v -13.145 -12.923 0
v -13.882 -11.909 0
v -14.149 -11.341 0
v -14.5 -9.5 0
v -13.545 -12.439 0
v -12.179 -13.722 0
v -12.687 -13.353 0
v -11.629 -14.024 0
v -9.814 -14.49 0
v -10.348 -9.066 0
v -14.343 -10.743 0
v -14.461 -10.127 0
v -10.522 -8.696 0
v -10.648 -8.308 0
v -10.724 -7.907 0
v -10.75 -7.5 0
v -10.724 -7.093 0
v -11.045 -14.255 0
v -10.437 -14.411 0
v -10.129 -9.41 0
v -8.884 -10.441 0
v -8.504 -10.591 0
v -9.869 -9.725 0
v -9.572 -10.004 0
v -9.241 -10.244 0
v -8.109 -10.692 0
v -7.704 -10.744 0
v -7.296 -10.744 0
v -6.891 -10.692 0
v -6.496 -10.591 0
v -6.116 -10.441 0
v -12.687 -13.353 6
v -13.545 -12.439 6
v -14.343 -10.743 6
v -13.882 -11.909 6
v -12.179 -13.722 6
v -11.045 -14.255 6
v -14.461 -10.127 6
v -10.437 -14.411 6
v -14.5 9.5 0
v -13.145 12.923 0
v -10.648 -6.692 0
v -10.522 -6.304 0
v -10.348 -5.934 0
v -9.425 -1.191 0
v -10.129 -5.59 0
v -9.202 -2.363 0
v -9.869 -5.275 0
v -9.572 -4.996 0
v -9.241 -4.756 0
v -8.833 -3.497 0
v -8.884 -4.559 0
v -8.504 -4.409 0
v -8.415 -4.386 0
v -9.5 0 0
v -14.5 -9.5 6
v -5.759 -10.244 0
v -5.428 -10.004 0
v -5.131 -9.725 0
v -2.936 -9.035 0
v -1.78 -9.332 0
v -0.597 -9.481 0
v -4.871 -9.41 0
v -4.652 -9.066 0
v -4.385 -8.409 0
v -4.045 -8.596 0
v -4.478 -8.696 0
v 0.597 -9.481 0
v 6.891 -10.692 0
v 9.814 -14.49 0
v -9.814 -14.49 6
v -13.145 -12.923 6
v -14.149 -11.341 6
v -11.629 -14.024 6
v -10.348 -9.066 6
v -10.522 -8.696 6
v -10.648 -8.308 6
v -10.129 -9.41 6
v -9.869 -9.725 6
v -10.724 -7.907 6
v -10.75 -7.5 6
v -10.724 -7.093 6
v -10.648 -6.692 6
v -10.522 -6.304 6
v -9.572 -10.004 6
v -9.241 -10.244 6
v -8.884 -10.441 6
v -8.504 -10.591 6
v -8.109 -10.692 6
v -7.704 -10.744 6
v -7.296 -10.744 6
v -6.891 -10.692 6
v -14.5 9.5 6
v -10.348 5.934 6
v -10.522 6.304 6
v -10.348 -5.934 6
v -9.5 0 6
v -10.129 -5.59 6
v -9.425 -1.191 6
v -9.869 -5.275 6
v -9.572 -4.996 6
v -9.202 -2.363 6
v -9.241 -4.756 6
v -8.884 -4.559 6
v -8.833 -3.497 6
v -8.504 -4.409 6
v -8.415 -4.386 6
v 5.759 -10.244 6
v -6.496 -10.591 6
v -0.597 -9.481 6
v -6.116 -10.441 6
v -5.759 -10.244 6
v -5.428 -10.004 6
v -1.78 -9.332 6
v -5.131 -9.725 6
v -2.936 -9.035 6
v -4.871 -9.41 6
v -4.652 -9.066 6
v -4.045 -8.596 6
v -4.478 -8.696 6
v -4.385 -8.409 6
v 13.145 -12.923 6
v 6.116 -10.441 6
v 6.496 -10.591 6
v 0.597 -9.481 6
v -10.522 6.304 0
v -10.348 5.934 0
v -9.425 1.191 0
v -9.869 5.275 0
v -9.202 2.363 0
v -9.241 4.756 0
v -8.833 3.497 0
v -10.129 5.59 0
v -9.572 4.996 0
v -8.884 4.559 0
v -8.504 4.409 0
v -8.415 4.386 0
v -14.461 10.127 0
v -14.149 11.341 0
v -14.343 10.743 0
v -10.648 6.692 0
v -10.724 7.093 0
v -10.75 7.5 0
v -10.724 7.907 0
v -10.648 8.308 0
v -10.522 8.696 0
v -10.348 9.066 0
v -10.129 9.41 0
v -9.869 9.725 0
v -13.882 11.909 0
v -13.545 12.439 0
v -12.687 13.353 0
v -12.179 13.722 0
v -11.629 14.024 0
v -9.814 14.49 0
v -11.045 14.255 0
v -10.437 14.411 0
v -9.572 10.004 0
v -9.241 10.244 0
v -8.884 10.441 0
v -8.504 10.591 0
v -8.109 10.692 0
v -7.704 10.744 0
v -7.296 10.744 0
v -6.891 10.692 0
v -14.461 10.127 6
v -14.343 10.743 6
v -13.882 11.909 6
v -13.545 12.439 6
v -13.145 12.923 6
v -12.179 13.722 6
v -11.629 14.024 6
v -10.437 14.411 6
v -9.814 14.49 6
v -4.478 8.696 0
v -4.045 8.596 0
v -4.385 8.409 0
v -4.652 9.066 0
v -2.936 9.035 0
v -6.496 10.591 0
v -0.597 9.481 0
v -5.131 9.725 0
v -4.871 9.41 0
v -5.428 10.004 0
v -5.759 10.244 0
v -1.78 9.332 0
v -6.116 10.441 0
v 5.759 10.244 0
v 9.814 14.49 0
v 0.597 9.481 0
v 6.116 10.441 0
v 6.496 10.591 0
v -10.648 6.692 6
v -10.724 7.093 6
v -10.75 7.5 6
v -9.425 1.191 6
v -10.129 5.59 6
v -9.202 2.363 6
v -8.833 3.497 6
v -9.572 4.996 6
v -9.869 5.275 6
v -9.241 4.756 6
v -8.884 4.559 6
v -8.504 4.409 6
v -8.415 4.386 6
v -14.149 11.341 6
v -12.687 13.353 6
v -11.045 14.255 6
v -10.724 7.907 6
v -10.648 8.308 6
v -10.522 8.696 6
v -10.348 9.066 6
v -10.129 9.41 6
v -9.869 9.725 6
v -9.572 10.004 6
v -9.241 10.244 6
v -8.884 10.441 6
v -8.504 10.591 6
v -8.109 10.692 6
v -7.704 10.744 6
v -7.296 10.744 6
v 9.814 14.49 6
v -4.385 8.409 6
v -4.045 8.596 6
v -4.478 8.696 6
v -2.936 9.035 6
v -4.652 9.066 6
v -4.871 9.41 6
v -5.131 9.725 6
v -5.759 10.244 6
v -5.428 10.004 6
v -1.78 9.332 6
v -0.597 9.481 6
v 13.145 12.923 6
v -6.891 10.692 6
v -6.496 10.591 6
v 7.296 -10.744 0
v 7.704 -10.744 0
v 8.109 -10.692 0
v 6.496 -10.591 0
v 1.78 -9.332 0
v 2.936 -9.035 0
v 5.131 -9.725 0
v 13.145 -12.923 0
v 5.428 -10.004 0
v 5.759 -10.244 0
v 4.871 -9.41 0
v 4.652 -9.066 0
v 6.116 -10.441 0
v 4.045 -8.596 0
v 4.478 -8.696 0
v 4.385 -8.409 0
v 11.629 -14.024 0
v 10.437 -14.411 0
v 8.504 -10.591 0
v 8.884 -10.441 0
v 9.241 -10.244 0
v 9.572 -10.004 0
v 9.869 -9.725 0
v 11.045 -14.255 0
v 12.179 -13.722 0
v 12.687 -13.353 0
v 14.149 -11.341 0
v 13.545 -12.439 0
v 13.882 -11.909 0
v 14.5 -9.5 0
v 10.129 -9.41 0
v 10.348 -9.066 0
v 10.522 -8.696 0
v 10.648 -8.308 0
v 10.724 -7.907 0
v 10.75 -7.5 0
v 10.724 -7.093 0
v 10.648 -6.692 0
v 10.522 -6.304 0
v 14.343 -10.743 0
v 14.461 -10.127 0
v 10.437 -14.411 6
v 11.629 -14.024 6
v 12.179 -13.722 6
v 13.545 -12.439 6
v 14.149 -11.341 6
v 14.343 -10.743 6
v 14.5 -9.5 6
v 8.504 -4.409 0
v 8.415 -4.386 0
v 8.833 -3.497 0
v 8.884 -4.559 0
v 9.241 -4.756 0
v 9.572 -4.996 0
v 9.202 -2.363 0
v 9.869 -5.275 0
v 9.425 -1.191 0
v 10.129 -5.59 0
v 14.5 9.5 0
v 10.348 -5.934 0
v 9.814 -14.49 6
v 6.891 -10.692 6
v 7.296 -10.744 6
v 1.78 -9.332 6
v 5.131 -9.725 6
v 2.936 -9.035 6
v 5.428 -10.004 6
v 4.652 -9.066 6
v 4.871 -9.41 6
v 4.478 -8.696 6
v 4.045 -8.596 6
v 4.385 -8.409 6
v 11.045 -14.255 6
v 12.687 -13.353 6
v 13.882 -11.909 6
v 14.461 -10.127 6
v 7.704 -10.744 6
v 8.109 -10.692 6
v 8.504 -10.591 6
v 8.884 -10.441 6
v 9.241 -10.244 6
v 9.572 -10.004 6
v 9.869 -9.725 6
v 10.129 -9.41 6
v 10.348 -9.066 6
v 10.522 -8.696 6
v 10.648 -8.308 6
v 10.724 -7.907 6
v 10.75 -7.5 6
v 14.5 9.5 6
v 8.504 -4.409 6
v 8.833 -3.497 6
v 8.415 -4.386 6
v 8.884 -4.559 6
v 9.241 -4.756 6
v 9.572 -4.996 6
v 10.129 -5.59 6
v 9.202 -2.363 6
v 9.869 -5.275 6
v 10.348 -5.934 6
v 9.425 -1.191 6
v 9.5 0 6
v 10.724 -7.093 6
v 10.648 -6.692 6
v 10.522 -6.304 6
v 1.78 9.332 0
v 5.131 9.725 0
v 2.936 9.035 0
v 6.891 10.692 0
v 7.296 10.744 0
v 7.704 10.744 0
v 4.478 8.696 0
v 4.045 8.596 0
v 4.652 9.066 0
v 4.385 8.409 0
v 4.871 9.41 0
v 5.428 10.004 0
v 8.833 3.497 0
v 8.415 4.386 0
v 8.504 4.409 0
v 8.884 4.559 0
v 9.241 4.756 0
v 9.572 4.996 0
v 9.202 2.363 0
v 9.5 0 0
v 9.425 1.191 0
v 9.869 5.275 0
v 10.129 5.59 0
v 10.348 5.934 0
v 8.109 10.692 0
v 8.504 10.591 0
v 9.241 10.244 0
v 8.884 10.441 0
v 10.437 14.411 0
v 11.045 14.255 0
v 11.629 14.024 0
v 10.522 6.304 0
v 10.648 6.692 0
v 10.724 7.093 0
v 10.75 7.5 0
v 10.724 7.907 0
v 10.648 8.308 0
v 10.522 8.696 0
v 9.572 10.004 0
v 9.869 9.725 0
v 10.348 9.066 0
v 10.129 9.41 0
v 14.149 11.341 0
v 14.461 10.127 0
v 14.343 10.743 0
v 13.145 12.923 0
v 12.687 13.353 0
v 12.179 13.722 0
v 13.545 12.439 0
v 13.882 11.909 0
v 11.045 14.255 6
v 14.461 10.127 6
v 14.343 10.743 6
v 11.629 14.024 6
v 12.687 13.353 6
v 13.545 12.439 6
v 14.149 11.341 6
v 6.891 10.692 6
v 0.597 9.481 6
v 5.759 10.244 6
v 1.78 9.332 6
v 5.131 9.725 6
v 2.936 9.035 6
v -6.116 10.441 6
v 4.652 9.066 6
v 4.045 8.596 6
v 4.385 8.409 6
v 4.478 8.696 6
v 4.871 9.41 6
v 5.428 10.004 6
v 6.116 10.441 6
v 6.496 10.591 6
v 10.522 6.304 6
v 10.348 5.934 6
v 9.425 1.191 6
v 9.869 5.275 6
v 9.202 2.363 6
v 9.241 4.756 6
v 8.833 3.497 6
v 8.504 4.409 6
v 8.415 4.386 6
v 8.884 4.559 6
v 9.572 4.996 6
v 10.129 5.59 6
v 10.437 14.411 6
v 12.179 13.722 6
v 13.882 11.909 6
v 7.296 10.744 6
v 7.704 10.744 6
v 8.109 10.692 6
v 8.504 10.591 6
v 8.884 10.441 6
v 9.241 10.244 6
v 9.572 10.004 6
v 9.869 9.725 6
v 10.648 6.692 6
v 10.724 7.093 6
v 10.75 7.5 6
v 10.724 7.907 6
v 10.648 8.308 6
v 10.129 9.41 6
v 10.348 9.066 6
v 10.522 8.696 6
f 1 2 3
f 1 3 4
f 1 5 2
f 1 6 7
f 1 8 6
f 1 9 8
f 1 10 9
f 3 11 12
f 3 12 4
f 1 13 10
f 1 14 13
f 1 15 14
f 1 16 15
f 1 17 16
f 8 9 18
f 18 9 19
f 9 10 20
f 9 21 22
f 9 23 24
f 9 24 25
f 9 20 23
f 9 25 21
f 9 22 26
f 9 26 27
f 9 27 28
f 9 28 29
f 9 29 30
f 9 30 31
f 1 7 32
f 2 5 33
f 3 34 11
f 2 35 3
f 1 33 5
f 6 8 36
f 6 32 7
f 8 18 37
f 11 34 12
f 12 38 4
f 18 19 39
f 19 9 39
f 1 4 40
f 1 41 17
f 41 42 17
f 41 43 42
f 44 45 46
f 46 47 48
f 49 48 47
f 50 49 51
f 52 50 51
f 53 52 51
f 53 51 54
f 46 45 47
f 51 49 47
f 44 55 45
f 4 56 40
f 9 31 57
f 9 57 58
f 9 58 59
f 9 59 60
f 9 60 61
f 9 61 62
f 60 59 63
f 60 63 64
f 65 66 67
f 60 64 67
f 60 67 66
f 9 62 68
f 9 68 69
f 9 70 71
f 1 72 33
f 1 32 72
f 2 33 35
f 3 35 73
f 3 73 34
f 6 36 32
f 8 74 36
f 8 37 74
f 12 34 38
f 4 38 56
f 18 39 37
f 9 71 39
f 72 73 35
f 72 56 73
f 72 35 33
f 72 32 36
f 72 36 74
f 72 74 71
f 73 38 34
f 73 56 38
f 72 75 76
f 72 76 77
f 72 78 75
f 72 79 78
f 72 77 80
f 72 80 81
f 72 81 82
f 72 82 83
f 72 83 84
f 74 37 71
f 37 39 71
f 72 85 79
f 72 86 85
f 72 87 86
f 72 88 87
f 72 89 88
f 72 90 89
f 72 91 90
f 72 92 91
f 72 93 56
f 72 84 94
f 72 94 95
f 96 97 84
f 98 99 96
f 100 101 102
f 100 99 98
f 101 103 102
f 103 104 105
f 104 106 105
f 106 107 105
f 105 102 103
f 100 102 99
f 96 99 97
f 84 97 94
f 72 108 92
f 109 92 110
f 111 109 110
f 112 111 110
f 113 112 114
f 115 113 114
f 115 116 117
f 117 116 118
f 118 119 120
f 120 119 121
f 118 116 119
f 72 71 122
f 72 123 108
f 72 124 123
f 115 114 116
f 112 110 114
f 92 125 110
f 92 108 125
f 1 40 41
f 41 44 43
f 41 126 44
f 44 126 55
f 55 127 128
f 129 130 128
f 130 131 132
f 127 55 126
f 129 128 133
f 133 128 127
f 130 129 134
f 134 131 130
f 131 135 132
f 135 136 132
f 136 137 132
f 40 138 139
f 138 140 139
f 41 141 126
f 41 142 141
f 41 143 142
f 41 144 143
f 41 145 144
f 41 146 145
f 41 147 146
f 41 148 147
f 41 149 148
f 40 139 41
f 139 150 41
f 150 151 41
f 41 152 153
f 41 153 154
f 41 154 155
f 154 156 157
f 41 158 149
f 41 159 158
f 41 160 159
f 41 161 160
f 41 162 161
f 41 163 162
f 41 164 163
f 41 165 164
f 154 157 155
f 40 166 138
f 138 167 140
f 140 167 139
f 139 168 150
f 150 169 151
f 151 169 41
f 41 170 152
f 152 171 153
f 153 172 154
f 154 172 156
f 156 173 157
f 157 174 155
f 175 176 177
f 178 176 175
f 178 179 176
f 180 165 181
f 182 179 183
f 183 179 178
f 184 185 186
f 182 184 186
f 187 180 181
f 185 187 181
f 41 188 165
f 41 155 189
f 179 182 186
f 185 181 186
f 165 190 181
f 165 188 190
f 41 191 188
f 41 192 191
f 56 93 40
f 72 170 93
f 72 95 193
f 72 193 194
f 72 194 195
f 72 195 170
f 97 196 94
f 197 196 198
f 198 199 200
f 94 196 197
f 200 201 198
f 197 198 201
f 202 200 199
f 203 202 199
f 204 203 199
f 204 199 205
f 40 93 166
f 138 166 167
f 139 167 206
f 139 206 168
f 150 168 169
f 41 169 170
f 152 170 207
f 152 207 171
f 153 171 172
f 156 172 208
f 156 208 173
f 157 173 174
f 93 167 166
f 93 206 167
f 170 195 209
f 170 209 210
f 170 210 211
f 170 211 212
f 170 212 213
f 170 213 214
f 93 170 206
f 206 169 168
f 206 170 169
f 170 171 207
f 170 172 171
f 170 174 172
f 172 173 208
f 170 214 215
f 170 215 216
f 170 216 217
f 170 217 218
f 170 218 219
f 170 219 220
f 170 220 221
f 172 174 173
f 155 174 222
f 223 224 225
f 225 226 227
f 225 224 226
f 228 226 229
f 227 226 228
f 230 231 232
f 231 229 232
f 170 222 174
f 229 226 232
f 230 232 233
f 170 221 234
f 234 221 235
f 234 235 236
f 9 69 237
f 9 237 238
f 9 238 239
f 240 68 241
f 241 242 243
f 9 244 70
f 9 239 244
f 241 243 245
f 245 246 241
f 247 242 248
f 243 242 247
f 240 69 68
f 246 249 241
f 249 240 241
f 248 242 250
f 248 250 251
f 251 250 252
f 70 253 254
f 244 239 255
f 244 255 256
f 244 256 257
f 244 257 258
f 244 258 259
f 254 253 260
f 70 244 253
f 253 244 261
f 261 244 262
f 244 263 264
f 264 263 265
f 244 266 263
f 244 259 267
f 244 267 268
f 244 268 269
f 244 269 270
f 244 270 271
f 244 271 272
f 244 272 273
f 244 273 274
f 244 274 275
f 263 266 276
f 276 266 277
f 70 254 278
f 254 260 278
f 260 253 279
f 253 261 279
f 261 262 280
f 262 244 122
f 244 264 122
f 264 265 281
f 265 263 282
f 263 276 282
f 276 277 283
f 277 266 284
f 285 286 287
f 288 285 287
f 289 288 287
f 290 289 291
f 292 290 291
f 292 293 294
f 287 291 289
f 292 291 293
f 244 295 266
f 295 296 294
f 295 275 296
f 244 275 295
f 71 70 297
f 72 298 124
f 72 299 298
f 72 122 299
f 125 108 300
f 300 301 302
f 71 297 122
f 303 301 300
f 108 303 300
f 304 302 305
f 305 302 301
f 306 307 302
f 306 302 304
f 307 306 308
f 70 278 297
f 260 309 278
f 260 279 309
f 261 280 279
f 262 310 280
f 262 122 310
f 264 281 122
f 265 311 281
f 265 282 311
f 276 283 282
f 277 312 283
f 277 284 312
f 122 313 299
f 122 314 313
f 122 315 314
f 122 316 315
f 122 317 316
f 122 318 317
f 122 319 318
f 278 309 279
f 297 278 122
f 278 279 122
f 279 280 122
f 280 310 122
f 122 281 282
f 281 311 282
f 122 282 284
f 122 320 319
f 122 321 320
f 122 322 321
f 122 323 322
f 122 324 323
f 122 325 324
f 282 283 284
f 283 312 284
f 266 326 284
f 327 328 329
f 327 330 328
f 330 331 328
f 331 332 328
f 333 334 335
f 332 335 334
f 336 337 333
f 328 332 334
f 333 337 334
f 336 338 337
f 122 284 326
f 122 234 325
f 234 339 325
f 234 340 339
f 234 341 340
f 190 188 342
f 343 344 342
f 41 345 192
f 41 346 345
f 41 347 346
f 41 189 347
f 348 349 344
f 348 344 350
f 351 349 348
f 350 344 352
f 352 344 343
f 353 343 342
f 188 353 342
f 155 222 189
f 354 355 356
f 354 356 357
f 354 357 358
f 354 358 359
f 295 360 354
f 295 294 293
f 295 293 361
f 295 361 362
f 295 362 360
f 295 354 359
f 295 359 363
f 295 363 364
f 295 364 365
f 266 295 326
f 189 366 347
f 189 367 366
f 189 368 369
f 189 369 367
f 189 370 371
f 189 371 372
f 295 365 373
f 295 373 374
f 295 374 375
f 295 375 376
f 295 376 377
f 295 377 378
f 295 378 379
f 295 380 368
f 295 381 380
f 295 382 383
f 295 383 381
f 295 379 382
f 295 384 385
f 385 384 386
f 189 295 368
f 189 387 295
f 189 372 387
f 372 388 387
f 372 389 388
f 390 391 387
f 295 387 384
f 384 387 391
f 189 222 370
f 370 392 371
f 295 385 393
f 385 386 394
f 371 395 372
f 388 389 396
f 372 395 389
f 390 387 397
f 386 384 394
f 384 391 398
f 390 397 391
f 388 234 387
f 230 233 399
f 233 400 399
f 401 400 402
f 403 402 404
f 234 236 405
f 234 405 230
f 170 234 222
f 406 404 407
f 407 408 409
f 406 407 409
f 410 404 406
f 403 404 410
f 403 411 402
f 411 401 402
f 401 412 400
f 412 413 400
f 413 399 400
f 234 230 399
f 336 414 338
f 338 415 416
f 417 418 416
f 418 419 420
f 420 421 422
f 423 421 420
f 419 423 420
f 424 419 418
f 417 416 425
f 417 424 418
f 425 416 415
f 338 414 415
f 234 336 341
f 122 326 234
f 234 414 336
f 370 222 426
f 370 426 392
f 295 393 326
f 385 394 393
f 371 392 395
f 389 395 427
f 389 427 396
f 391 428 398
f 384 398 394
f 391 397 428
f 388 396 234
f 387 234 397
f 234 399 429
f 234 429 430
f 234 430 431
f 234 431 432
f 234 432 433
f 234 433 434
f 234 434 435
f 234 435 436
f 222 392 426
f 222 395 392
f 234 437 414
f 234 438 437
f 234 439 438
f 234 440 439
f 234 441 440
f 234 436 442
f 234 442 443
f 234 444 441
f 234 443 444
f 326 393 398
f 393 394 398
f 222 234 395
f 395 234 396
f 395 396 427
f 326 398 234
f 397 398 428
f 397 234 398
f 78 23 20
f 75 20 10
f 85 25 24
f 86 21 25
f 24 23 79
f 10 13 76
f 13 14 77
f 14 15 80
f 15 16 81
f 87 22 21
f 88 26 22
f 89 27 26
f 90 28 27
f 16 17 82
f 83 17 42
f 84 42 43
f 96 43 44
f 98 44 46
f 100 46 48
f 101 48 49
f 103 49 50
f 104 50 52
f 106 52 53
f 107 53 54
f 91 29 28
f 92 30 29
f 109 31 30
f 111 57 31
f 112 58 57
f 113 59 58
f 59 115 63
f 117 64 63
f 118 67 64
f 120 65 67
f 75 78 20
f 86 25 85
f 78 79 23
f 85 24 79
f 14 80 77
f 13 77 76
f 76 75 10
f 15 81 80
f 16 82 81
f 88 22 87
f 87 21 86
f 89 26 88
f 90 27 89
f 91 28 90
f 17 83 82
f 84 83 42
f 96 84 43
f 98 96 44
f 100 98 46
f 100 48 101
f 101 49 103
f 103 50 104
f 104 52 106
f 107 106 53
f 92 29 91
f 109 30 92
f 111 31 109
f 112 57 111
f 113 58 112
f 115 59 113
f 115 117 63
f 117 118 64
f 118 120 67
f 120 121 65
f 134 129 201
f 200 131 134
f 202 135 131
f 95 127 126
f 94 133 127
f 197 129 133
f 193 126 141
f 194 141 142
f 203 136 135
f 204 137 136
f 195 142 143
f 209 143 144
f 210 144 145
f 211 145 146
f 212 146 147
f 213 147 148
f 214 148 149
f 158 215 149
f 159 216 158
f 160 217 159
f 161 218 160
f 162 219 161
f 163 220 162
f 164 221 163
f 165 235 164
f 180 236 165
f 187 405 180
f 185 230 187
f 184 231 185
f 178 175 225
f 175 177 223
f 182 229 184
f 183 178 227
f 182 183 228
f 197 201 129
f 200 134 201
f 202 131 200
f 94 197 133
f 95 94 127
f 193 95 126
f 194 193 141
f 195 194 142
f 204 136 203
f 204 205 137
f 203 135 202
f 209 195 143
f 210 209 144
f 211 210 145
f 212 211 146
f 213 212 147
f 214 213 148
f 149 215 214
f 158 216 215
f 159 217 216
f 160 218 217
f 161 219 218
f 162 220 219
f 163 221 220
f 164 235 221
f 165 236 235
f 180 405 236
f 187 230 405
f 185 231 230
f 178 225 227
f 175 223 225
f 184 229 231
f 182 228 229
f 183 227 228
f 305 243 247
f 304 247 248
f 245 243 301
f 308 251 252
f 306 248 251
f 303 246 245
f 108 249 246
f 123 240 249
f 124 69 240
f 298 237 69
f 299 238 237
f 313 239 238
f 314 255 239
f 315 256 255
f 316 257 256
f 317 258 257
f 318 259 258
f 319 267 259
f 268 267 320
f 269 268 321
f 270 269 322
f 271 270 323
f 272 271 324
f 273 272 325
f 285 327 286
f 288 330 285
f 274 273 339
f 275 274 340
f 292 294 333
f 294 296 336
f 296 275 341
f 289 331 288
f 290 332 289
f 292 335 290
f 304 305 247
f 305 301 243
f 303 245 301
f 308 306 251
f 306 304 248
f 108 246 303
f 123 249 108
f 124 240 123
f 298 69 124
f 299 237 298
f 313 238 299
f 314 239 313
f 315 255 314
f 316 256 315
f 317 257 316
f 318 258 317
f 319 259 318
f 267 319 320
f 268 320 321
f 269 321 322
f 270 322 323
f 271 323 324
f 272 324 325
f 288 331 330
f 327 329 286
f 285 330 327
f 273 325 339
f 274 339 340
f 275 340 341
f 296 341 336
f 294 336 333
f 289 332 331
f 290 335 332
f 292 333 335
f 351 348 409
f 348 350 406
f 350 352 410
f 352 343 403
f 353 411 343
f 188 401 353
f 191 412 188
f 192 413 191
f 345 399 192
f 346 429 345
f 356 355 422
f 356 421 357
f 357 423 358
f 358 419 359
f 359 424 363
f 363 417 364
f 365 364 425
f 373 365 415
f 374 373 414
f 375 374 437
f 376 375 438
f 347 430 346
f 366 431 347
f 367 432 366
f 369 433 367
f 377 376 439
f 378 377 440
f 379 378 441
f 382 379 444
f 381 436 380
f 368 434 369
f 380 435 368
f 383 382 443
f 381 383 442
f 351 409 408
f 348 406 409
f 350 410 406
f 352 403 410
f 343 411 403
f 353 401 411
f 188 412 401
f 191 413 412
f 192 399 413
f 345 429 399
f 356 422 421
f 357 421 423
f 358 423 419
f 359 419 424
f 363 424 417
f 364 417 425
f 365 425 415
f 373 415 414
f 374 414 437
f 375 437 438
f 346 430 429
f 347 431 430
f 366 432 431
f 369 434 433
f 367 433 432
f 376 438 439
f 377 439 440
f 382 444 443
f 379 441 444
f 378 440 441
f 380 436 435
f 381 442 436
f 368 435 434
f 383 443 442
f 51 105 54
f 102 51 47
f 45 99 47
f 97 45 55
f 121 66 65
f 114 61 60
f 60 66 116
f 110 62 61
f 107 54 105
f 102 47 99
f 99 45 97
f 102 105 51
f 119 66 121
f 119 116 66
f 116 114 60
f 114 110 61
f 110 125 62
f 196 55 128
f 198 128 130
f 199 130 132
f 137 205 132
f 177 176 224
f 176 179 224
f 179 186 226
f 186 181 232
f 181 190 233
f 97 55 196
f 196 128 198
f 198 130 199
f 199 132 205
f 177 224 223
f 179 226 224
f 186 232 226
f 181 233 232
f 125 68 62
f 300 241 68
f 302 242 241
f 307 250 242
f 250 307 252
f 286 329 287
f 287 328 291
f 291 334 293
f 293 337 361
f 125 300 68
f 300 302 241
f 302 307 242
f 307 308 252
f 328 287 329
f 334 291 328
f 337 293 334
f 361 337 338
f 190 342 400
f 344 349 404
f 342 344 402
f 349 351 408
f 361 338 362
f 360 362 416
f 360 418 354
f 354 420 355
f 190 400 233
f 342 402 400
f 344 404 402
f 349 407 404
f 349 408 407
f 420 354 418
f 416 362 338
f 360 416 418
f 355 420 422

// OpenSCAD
$fn = 50;

difference() {
	union() {
		hull() {
			translate(v = [-9.5, 9.5, 0]) {
				cylinder(h = 6, r = 5);
			}
			translate(v = [9.5, 9.5, 0]) {
				cylinder(h = 6, r = 5);
			}
			translate(v = [-9.5, -9.5, 0]) {
				cylinder(h = 6, r = 5);
			}
			translate(v = [9.5, -9.5, 0]) {
				cylinder(h = 6, r = 5);
			}
		}
	}
	union() {
		translate(v = [-7.5, -7.5, -100.0]) {
			cylinder(h = 200, r = 3.25);
		}
		translate(v = [-7.5, 7.5, -100.0]) {
			cylinder(h = 200, r = 3.25);
		}
		translate(v = [7.5, -7.5, -100.0]) {
			cylinder(h = 200, r = 3.25);
		}
		translate(v = [7.5, 7.5, -100.0]) {
			cylinder(h = 200, r = 3.25);
		}
		translate(v = [-7.5, -7.5, -100.0]) {
			cylinder(h = 200, r = 1.8);
		}
		translate(v = [-7.5, 7.5, -100.0]) {
			cylinder(h = 200, r = 1.8);
		}
		translate(v = [7.5, -7.5, -100.0]) {
			cylinder(h = 200, r = 1.8);
		}
		translate(v = [7.5, 7.5, -100.0]) {
			cylinder(h = 200, r = 1.8);
		}
		cylinder(h = 6, r = 9.5);
	}
}
